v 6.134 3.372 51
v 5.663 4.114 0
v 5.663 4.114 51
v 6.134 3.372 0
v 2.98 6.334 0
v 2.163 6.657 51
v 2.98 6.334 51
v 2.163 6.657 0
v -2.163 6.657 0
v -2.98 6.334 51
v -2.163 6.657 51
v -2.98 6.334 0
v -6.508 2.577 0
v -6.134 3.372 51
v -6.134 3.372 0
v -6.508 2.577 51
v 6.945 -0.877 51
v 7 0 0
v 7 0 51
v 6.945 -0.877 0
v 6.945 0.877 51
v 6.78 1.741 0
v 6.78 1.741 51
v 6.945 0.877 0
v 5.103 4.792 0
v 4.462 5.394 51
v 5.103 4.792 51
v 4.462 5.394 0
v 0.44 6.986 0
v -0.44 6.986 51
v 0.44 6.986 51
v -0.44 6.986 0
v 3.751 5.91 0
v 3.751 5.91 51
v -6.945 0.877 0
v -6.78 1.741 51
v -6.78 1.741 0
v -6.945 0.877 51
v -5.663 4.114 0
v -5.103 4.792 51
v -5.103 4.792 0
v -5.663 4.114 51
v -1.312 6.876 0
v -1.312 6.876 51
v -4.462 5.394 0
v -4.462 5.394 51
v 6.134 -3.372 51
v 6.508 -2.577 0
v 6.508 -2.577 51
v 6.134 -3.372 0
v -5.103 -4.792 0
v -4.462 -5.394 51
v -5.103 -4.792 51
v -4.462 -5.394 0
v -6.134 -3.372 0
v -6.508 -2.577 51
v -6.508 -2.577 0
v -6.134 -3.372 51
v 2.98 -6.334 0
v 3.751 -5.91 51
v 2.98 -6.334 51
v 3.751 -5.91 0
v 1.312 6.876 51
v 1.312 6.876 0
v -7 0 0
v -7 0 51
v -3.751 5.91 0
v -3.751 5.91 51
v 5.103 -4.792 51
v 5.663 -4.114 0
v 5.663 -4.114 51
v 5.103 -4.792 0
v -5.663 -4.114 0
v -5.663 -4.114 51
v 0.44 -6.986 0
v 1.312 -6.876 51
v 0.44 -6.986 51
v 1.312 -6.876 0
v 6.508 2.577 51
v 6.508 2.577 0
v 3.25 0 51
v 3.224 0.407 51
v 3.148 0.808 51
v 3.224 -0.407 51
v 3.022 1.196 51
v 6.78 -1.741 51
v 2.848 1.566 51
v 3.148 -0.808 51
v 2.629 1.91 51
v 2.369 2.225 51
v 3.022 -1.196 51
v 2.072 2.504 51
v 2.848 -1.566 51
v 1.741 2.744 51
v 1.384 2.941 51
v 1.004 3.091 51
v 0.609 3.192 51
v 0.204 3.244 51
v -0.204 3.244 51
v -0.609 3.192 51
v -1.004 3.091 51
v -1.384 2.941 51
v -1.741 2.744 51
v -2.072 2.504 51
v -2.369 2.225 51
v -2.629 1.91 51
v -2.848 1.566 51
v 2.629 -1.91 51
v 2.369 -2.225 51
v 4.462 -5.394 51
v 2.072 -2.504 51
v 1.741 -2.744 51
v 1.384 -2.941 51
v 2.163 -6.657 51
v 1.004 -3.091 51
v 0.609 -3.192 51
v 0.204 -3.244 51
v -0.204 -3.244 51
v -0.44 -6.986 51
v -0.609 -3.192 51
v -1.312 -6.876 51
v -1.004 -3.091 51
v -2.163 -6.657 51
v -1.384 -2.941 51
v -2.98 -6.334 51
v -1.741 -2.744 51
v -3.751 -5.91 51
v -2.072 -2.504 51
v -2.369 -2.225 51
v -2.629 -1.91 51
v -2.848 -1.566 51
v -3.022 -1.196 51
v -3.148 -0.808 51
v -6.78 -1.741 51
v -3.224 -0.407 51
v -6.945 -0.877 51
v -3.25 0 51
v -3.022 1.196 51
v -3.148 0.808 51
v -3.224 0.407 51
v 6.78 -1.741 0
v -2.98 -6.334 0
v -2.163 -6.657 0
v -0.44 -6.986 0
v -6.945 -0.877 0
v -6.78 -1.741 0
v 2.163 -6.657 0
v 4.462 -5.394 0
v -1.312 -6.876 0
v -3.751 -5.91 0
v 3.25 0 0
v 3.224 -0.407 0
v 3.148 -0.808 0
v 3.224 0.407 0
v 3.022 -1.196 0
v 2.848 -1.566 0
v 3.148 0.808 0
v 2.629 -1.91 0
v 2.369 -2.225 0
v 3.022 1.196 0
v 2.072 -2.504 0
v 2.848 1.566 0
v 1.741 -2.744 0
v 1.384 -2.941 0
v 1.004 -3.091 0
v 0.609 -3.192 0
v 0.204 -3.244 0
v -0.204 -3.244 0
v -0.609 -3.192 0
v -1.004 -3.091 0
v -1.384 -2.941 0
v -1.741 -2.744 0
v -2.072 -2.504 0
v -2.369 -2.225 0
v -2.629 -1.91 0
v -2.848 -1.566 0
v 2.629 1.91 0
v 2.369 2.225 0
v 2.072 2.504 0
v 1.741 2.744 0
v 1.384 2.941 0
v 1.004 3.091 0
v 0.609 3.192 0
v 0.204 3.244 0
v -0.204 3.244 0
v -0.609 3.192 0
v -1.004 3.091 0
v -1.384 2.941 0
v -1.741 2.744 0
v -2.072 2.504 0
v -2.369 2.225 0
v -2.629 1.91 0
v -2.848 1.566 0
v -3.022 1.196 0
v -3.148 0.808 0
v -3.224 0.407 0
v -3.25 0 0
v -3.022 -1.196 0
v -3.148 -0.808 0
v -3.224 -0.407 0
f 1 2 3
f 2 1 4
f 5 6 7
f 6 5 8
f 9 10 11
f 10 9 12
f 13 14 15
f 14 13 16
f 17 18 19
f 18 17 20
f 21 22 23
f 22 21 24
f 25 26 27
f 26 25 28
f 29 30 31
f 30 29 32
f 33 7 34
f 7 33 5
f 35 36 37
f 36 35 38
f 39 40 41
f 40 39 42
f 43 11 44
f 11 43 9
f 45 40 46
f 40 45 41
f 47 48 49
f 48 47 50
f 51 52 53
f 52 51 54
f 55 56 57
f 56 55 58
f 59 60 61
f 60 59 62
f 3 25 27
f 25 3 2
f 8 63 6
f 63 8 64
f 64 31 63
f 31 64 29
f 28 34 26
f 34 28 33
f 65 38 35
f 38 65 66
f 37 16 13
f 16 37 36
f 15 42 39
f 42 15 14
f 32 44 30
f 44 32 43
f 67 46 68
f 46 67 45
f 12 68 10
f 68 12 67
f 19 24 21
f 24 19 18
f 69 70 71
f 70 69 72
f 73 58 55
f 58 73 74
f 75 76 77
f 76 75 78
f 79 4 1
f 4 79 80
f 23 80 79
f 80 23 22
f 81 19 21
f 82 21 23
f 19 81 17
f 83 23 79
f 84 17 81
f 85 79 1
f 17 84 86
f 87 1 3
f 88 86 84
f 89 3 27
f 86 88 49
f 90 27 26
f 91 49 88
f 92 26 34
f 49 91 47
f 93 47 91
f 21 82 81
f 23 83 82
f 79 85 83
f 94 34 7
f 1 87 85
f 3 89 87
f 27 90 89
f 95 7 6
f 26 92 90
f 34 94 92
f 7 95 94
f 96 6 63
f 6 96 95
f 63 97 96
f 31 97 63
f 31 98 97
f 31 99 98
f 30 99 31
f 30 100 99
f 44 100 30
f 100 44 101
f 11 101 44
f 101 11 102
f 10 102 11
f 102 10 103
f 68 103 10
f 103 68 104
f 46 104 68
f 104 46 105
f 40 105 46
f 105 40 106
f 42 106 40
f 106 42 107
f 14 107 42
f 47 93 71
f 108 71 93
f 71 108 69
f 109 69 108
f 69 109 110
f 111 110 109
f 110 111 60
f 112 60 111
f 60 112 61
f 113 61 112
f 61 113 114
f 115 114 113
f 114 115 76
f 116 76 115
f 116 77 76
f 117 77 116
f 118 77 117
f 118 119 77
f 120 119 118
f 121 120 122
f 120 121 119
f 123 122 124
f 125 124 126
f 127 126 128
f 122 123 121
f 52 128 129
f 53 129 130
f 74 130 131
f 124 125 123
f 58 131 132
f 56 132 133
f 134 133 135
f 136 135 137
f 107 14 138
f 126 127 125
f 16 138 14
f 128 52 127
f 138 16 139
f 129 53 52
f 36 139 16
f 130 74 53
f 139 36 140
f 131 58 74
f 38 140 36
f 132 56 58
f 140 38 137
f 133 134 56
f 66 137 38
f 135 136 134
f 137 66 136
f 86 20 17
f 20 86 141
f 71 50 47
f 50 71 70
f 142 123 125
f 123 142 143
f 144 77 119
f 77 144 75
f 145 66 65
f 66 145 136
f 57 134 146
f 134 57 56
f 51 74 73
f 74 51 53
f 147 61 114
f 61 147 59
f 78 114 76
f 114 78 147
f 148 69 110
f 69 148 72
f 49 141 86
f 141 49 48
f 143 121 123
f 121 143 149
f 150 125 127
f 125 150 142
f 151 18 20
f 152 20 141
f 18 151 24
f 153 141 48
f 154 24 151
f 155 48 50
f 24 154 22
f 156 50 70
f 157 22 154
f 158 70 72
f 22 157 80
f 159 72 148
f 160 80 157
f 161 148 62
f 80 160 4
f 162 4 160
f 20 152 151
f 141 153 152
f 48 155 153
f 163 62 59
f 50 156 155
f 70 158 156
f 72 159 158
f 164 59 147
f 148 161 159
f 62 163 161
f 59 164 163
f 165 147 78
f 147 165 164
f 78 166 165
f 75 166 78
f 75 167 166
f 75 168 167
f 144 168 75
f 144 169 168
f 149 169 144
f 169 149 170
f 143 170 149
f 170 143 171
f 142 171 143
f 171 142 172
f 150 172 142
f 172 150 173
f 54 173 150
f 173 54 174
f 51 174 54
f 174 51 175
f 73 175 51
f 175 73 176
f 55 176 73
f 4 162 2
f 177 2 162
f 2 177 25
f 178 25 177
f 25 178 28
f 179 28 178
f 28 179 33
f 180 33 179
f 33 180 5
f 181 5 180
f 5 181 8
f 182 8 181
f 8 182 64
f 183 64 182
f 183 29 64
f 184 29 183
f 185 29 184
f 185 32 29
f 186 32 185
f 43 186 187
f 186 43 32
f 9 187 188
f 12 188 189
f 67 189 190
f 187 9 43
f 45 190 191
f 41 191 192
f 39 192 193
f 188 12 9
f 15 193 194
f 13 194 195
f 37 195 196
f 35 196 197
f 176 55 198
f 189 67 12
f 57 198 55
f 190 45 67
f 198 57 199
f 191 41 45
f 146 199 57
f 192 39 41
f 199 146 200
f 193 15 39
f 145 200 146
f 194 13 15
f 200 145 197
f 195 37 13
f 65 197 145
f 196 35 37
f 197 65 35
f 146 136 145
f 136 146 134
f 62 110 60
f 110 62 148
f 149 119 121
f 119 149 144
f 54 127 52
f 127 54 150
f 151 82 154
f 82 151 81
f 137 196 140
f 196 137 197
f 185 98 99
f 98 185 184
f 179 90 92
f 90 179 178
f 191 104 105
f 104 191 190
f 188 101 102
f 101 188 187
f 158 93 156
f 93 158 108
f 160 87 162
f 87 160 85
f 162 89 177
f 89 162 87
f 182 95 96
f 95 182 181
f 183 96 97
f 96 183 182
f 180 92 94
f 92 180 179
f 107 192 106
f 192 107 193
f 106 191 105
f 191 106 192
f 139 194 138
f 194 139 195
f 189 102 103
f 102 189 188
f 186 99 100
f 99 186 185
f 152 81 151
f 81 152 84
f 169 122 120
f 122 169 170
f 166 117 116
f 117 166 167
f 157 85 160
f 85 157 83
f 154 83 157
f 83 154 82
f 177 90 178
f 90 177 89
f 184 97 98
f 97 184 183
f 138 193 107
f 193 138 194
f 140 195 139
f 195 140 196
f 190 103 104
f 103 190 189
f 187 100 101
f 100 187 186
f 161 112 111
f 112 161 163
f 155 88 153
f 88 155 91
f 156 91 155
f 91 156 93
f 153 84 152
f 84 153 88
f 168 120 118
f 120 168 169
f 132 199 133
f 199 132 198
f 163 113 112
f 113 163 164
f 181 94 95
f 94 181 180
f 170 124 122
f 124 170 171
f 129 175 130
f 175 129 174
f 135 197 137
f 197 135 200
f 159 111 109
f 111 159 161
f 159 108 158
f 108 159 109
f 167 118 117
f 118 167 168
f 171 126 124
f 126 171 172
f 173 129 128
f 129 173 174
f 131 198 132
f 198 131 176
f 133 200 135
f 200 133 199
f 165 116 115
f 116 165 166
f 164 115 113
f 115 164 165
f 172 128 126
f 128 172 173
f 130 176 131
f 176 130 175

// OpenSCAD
$fn = 50;


difference() {
	union() {
		cylinder(h = 51, r = 7.0000000000);
	}
	union() {
		translate(v = [0.0000000000, 0.0000000000, -100.0000000000]) {
			cylinder(h = 200, r = 3.2500000000);
		}
		cylinder(h = 51, r = 1.8000000000);
		cylinder(h = 51, r = 1.8000000000);
		cylinder(h = 51, r = 1.8000000000);
	}
}
